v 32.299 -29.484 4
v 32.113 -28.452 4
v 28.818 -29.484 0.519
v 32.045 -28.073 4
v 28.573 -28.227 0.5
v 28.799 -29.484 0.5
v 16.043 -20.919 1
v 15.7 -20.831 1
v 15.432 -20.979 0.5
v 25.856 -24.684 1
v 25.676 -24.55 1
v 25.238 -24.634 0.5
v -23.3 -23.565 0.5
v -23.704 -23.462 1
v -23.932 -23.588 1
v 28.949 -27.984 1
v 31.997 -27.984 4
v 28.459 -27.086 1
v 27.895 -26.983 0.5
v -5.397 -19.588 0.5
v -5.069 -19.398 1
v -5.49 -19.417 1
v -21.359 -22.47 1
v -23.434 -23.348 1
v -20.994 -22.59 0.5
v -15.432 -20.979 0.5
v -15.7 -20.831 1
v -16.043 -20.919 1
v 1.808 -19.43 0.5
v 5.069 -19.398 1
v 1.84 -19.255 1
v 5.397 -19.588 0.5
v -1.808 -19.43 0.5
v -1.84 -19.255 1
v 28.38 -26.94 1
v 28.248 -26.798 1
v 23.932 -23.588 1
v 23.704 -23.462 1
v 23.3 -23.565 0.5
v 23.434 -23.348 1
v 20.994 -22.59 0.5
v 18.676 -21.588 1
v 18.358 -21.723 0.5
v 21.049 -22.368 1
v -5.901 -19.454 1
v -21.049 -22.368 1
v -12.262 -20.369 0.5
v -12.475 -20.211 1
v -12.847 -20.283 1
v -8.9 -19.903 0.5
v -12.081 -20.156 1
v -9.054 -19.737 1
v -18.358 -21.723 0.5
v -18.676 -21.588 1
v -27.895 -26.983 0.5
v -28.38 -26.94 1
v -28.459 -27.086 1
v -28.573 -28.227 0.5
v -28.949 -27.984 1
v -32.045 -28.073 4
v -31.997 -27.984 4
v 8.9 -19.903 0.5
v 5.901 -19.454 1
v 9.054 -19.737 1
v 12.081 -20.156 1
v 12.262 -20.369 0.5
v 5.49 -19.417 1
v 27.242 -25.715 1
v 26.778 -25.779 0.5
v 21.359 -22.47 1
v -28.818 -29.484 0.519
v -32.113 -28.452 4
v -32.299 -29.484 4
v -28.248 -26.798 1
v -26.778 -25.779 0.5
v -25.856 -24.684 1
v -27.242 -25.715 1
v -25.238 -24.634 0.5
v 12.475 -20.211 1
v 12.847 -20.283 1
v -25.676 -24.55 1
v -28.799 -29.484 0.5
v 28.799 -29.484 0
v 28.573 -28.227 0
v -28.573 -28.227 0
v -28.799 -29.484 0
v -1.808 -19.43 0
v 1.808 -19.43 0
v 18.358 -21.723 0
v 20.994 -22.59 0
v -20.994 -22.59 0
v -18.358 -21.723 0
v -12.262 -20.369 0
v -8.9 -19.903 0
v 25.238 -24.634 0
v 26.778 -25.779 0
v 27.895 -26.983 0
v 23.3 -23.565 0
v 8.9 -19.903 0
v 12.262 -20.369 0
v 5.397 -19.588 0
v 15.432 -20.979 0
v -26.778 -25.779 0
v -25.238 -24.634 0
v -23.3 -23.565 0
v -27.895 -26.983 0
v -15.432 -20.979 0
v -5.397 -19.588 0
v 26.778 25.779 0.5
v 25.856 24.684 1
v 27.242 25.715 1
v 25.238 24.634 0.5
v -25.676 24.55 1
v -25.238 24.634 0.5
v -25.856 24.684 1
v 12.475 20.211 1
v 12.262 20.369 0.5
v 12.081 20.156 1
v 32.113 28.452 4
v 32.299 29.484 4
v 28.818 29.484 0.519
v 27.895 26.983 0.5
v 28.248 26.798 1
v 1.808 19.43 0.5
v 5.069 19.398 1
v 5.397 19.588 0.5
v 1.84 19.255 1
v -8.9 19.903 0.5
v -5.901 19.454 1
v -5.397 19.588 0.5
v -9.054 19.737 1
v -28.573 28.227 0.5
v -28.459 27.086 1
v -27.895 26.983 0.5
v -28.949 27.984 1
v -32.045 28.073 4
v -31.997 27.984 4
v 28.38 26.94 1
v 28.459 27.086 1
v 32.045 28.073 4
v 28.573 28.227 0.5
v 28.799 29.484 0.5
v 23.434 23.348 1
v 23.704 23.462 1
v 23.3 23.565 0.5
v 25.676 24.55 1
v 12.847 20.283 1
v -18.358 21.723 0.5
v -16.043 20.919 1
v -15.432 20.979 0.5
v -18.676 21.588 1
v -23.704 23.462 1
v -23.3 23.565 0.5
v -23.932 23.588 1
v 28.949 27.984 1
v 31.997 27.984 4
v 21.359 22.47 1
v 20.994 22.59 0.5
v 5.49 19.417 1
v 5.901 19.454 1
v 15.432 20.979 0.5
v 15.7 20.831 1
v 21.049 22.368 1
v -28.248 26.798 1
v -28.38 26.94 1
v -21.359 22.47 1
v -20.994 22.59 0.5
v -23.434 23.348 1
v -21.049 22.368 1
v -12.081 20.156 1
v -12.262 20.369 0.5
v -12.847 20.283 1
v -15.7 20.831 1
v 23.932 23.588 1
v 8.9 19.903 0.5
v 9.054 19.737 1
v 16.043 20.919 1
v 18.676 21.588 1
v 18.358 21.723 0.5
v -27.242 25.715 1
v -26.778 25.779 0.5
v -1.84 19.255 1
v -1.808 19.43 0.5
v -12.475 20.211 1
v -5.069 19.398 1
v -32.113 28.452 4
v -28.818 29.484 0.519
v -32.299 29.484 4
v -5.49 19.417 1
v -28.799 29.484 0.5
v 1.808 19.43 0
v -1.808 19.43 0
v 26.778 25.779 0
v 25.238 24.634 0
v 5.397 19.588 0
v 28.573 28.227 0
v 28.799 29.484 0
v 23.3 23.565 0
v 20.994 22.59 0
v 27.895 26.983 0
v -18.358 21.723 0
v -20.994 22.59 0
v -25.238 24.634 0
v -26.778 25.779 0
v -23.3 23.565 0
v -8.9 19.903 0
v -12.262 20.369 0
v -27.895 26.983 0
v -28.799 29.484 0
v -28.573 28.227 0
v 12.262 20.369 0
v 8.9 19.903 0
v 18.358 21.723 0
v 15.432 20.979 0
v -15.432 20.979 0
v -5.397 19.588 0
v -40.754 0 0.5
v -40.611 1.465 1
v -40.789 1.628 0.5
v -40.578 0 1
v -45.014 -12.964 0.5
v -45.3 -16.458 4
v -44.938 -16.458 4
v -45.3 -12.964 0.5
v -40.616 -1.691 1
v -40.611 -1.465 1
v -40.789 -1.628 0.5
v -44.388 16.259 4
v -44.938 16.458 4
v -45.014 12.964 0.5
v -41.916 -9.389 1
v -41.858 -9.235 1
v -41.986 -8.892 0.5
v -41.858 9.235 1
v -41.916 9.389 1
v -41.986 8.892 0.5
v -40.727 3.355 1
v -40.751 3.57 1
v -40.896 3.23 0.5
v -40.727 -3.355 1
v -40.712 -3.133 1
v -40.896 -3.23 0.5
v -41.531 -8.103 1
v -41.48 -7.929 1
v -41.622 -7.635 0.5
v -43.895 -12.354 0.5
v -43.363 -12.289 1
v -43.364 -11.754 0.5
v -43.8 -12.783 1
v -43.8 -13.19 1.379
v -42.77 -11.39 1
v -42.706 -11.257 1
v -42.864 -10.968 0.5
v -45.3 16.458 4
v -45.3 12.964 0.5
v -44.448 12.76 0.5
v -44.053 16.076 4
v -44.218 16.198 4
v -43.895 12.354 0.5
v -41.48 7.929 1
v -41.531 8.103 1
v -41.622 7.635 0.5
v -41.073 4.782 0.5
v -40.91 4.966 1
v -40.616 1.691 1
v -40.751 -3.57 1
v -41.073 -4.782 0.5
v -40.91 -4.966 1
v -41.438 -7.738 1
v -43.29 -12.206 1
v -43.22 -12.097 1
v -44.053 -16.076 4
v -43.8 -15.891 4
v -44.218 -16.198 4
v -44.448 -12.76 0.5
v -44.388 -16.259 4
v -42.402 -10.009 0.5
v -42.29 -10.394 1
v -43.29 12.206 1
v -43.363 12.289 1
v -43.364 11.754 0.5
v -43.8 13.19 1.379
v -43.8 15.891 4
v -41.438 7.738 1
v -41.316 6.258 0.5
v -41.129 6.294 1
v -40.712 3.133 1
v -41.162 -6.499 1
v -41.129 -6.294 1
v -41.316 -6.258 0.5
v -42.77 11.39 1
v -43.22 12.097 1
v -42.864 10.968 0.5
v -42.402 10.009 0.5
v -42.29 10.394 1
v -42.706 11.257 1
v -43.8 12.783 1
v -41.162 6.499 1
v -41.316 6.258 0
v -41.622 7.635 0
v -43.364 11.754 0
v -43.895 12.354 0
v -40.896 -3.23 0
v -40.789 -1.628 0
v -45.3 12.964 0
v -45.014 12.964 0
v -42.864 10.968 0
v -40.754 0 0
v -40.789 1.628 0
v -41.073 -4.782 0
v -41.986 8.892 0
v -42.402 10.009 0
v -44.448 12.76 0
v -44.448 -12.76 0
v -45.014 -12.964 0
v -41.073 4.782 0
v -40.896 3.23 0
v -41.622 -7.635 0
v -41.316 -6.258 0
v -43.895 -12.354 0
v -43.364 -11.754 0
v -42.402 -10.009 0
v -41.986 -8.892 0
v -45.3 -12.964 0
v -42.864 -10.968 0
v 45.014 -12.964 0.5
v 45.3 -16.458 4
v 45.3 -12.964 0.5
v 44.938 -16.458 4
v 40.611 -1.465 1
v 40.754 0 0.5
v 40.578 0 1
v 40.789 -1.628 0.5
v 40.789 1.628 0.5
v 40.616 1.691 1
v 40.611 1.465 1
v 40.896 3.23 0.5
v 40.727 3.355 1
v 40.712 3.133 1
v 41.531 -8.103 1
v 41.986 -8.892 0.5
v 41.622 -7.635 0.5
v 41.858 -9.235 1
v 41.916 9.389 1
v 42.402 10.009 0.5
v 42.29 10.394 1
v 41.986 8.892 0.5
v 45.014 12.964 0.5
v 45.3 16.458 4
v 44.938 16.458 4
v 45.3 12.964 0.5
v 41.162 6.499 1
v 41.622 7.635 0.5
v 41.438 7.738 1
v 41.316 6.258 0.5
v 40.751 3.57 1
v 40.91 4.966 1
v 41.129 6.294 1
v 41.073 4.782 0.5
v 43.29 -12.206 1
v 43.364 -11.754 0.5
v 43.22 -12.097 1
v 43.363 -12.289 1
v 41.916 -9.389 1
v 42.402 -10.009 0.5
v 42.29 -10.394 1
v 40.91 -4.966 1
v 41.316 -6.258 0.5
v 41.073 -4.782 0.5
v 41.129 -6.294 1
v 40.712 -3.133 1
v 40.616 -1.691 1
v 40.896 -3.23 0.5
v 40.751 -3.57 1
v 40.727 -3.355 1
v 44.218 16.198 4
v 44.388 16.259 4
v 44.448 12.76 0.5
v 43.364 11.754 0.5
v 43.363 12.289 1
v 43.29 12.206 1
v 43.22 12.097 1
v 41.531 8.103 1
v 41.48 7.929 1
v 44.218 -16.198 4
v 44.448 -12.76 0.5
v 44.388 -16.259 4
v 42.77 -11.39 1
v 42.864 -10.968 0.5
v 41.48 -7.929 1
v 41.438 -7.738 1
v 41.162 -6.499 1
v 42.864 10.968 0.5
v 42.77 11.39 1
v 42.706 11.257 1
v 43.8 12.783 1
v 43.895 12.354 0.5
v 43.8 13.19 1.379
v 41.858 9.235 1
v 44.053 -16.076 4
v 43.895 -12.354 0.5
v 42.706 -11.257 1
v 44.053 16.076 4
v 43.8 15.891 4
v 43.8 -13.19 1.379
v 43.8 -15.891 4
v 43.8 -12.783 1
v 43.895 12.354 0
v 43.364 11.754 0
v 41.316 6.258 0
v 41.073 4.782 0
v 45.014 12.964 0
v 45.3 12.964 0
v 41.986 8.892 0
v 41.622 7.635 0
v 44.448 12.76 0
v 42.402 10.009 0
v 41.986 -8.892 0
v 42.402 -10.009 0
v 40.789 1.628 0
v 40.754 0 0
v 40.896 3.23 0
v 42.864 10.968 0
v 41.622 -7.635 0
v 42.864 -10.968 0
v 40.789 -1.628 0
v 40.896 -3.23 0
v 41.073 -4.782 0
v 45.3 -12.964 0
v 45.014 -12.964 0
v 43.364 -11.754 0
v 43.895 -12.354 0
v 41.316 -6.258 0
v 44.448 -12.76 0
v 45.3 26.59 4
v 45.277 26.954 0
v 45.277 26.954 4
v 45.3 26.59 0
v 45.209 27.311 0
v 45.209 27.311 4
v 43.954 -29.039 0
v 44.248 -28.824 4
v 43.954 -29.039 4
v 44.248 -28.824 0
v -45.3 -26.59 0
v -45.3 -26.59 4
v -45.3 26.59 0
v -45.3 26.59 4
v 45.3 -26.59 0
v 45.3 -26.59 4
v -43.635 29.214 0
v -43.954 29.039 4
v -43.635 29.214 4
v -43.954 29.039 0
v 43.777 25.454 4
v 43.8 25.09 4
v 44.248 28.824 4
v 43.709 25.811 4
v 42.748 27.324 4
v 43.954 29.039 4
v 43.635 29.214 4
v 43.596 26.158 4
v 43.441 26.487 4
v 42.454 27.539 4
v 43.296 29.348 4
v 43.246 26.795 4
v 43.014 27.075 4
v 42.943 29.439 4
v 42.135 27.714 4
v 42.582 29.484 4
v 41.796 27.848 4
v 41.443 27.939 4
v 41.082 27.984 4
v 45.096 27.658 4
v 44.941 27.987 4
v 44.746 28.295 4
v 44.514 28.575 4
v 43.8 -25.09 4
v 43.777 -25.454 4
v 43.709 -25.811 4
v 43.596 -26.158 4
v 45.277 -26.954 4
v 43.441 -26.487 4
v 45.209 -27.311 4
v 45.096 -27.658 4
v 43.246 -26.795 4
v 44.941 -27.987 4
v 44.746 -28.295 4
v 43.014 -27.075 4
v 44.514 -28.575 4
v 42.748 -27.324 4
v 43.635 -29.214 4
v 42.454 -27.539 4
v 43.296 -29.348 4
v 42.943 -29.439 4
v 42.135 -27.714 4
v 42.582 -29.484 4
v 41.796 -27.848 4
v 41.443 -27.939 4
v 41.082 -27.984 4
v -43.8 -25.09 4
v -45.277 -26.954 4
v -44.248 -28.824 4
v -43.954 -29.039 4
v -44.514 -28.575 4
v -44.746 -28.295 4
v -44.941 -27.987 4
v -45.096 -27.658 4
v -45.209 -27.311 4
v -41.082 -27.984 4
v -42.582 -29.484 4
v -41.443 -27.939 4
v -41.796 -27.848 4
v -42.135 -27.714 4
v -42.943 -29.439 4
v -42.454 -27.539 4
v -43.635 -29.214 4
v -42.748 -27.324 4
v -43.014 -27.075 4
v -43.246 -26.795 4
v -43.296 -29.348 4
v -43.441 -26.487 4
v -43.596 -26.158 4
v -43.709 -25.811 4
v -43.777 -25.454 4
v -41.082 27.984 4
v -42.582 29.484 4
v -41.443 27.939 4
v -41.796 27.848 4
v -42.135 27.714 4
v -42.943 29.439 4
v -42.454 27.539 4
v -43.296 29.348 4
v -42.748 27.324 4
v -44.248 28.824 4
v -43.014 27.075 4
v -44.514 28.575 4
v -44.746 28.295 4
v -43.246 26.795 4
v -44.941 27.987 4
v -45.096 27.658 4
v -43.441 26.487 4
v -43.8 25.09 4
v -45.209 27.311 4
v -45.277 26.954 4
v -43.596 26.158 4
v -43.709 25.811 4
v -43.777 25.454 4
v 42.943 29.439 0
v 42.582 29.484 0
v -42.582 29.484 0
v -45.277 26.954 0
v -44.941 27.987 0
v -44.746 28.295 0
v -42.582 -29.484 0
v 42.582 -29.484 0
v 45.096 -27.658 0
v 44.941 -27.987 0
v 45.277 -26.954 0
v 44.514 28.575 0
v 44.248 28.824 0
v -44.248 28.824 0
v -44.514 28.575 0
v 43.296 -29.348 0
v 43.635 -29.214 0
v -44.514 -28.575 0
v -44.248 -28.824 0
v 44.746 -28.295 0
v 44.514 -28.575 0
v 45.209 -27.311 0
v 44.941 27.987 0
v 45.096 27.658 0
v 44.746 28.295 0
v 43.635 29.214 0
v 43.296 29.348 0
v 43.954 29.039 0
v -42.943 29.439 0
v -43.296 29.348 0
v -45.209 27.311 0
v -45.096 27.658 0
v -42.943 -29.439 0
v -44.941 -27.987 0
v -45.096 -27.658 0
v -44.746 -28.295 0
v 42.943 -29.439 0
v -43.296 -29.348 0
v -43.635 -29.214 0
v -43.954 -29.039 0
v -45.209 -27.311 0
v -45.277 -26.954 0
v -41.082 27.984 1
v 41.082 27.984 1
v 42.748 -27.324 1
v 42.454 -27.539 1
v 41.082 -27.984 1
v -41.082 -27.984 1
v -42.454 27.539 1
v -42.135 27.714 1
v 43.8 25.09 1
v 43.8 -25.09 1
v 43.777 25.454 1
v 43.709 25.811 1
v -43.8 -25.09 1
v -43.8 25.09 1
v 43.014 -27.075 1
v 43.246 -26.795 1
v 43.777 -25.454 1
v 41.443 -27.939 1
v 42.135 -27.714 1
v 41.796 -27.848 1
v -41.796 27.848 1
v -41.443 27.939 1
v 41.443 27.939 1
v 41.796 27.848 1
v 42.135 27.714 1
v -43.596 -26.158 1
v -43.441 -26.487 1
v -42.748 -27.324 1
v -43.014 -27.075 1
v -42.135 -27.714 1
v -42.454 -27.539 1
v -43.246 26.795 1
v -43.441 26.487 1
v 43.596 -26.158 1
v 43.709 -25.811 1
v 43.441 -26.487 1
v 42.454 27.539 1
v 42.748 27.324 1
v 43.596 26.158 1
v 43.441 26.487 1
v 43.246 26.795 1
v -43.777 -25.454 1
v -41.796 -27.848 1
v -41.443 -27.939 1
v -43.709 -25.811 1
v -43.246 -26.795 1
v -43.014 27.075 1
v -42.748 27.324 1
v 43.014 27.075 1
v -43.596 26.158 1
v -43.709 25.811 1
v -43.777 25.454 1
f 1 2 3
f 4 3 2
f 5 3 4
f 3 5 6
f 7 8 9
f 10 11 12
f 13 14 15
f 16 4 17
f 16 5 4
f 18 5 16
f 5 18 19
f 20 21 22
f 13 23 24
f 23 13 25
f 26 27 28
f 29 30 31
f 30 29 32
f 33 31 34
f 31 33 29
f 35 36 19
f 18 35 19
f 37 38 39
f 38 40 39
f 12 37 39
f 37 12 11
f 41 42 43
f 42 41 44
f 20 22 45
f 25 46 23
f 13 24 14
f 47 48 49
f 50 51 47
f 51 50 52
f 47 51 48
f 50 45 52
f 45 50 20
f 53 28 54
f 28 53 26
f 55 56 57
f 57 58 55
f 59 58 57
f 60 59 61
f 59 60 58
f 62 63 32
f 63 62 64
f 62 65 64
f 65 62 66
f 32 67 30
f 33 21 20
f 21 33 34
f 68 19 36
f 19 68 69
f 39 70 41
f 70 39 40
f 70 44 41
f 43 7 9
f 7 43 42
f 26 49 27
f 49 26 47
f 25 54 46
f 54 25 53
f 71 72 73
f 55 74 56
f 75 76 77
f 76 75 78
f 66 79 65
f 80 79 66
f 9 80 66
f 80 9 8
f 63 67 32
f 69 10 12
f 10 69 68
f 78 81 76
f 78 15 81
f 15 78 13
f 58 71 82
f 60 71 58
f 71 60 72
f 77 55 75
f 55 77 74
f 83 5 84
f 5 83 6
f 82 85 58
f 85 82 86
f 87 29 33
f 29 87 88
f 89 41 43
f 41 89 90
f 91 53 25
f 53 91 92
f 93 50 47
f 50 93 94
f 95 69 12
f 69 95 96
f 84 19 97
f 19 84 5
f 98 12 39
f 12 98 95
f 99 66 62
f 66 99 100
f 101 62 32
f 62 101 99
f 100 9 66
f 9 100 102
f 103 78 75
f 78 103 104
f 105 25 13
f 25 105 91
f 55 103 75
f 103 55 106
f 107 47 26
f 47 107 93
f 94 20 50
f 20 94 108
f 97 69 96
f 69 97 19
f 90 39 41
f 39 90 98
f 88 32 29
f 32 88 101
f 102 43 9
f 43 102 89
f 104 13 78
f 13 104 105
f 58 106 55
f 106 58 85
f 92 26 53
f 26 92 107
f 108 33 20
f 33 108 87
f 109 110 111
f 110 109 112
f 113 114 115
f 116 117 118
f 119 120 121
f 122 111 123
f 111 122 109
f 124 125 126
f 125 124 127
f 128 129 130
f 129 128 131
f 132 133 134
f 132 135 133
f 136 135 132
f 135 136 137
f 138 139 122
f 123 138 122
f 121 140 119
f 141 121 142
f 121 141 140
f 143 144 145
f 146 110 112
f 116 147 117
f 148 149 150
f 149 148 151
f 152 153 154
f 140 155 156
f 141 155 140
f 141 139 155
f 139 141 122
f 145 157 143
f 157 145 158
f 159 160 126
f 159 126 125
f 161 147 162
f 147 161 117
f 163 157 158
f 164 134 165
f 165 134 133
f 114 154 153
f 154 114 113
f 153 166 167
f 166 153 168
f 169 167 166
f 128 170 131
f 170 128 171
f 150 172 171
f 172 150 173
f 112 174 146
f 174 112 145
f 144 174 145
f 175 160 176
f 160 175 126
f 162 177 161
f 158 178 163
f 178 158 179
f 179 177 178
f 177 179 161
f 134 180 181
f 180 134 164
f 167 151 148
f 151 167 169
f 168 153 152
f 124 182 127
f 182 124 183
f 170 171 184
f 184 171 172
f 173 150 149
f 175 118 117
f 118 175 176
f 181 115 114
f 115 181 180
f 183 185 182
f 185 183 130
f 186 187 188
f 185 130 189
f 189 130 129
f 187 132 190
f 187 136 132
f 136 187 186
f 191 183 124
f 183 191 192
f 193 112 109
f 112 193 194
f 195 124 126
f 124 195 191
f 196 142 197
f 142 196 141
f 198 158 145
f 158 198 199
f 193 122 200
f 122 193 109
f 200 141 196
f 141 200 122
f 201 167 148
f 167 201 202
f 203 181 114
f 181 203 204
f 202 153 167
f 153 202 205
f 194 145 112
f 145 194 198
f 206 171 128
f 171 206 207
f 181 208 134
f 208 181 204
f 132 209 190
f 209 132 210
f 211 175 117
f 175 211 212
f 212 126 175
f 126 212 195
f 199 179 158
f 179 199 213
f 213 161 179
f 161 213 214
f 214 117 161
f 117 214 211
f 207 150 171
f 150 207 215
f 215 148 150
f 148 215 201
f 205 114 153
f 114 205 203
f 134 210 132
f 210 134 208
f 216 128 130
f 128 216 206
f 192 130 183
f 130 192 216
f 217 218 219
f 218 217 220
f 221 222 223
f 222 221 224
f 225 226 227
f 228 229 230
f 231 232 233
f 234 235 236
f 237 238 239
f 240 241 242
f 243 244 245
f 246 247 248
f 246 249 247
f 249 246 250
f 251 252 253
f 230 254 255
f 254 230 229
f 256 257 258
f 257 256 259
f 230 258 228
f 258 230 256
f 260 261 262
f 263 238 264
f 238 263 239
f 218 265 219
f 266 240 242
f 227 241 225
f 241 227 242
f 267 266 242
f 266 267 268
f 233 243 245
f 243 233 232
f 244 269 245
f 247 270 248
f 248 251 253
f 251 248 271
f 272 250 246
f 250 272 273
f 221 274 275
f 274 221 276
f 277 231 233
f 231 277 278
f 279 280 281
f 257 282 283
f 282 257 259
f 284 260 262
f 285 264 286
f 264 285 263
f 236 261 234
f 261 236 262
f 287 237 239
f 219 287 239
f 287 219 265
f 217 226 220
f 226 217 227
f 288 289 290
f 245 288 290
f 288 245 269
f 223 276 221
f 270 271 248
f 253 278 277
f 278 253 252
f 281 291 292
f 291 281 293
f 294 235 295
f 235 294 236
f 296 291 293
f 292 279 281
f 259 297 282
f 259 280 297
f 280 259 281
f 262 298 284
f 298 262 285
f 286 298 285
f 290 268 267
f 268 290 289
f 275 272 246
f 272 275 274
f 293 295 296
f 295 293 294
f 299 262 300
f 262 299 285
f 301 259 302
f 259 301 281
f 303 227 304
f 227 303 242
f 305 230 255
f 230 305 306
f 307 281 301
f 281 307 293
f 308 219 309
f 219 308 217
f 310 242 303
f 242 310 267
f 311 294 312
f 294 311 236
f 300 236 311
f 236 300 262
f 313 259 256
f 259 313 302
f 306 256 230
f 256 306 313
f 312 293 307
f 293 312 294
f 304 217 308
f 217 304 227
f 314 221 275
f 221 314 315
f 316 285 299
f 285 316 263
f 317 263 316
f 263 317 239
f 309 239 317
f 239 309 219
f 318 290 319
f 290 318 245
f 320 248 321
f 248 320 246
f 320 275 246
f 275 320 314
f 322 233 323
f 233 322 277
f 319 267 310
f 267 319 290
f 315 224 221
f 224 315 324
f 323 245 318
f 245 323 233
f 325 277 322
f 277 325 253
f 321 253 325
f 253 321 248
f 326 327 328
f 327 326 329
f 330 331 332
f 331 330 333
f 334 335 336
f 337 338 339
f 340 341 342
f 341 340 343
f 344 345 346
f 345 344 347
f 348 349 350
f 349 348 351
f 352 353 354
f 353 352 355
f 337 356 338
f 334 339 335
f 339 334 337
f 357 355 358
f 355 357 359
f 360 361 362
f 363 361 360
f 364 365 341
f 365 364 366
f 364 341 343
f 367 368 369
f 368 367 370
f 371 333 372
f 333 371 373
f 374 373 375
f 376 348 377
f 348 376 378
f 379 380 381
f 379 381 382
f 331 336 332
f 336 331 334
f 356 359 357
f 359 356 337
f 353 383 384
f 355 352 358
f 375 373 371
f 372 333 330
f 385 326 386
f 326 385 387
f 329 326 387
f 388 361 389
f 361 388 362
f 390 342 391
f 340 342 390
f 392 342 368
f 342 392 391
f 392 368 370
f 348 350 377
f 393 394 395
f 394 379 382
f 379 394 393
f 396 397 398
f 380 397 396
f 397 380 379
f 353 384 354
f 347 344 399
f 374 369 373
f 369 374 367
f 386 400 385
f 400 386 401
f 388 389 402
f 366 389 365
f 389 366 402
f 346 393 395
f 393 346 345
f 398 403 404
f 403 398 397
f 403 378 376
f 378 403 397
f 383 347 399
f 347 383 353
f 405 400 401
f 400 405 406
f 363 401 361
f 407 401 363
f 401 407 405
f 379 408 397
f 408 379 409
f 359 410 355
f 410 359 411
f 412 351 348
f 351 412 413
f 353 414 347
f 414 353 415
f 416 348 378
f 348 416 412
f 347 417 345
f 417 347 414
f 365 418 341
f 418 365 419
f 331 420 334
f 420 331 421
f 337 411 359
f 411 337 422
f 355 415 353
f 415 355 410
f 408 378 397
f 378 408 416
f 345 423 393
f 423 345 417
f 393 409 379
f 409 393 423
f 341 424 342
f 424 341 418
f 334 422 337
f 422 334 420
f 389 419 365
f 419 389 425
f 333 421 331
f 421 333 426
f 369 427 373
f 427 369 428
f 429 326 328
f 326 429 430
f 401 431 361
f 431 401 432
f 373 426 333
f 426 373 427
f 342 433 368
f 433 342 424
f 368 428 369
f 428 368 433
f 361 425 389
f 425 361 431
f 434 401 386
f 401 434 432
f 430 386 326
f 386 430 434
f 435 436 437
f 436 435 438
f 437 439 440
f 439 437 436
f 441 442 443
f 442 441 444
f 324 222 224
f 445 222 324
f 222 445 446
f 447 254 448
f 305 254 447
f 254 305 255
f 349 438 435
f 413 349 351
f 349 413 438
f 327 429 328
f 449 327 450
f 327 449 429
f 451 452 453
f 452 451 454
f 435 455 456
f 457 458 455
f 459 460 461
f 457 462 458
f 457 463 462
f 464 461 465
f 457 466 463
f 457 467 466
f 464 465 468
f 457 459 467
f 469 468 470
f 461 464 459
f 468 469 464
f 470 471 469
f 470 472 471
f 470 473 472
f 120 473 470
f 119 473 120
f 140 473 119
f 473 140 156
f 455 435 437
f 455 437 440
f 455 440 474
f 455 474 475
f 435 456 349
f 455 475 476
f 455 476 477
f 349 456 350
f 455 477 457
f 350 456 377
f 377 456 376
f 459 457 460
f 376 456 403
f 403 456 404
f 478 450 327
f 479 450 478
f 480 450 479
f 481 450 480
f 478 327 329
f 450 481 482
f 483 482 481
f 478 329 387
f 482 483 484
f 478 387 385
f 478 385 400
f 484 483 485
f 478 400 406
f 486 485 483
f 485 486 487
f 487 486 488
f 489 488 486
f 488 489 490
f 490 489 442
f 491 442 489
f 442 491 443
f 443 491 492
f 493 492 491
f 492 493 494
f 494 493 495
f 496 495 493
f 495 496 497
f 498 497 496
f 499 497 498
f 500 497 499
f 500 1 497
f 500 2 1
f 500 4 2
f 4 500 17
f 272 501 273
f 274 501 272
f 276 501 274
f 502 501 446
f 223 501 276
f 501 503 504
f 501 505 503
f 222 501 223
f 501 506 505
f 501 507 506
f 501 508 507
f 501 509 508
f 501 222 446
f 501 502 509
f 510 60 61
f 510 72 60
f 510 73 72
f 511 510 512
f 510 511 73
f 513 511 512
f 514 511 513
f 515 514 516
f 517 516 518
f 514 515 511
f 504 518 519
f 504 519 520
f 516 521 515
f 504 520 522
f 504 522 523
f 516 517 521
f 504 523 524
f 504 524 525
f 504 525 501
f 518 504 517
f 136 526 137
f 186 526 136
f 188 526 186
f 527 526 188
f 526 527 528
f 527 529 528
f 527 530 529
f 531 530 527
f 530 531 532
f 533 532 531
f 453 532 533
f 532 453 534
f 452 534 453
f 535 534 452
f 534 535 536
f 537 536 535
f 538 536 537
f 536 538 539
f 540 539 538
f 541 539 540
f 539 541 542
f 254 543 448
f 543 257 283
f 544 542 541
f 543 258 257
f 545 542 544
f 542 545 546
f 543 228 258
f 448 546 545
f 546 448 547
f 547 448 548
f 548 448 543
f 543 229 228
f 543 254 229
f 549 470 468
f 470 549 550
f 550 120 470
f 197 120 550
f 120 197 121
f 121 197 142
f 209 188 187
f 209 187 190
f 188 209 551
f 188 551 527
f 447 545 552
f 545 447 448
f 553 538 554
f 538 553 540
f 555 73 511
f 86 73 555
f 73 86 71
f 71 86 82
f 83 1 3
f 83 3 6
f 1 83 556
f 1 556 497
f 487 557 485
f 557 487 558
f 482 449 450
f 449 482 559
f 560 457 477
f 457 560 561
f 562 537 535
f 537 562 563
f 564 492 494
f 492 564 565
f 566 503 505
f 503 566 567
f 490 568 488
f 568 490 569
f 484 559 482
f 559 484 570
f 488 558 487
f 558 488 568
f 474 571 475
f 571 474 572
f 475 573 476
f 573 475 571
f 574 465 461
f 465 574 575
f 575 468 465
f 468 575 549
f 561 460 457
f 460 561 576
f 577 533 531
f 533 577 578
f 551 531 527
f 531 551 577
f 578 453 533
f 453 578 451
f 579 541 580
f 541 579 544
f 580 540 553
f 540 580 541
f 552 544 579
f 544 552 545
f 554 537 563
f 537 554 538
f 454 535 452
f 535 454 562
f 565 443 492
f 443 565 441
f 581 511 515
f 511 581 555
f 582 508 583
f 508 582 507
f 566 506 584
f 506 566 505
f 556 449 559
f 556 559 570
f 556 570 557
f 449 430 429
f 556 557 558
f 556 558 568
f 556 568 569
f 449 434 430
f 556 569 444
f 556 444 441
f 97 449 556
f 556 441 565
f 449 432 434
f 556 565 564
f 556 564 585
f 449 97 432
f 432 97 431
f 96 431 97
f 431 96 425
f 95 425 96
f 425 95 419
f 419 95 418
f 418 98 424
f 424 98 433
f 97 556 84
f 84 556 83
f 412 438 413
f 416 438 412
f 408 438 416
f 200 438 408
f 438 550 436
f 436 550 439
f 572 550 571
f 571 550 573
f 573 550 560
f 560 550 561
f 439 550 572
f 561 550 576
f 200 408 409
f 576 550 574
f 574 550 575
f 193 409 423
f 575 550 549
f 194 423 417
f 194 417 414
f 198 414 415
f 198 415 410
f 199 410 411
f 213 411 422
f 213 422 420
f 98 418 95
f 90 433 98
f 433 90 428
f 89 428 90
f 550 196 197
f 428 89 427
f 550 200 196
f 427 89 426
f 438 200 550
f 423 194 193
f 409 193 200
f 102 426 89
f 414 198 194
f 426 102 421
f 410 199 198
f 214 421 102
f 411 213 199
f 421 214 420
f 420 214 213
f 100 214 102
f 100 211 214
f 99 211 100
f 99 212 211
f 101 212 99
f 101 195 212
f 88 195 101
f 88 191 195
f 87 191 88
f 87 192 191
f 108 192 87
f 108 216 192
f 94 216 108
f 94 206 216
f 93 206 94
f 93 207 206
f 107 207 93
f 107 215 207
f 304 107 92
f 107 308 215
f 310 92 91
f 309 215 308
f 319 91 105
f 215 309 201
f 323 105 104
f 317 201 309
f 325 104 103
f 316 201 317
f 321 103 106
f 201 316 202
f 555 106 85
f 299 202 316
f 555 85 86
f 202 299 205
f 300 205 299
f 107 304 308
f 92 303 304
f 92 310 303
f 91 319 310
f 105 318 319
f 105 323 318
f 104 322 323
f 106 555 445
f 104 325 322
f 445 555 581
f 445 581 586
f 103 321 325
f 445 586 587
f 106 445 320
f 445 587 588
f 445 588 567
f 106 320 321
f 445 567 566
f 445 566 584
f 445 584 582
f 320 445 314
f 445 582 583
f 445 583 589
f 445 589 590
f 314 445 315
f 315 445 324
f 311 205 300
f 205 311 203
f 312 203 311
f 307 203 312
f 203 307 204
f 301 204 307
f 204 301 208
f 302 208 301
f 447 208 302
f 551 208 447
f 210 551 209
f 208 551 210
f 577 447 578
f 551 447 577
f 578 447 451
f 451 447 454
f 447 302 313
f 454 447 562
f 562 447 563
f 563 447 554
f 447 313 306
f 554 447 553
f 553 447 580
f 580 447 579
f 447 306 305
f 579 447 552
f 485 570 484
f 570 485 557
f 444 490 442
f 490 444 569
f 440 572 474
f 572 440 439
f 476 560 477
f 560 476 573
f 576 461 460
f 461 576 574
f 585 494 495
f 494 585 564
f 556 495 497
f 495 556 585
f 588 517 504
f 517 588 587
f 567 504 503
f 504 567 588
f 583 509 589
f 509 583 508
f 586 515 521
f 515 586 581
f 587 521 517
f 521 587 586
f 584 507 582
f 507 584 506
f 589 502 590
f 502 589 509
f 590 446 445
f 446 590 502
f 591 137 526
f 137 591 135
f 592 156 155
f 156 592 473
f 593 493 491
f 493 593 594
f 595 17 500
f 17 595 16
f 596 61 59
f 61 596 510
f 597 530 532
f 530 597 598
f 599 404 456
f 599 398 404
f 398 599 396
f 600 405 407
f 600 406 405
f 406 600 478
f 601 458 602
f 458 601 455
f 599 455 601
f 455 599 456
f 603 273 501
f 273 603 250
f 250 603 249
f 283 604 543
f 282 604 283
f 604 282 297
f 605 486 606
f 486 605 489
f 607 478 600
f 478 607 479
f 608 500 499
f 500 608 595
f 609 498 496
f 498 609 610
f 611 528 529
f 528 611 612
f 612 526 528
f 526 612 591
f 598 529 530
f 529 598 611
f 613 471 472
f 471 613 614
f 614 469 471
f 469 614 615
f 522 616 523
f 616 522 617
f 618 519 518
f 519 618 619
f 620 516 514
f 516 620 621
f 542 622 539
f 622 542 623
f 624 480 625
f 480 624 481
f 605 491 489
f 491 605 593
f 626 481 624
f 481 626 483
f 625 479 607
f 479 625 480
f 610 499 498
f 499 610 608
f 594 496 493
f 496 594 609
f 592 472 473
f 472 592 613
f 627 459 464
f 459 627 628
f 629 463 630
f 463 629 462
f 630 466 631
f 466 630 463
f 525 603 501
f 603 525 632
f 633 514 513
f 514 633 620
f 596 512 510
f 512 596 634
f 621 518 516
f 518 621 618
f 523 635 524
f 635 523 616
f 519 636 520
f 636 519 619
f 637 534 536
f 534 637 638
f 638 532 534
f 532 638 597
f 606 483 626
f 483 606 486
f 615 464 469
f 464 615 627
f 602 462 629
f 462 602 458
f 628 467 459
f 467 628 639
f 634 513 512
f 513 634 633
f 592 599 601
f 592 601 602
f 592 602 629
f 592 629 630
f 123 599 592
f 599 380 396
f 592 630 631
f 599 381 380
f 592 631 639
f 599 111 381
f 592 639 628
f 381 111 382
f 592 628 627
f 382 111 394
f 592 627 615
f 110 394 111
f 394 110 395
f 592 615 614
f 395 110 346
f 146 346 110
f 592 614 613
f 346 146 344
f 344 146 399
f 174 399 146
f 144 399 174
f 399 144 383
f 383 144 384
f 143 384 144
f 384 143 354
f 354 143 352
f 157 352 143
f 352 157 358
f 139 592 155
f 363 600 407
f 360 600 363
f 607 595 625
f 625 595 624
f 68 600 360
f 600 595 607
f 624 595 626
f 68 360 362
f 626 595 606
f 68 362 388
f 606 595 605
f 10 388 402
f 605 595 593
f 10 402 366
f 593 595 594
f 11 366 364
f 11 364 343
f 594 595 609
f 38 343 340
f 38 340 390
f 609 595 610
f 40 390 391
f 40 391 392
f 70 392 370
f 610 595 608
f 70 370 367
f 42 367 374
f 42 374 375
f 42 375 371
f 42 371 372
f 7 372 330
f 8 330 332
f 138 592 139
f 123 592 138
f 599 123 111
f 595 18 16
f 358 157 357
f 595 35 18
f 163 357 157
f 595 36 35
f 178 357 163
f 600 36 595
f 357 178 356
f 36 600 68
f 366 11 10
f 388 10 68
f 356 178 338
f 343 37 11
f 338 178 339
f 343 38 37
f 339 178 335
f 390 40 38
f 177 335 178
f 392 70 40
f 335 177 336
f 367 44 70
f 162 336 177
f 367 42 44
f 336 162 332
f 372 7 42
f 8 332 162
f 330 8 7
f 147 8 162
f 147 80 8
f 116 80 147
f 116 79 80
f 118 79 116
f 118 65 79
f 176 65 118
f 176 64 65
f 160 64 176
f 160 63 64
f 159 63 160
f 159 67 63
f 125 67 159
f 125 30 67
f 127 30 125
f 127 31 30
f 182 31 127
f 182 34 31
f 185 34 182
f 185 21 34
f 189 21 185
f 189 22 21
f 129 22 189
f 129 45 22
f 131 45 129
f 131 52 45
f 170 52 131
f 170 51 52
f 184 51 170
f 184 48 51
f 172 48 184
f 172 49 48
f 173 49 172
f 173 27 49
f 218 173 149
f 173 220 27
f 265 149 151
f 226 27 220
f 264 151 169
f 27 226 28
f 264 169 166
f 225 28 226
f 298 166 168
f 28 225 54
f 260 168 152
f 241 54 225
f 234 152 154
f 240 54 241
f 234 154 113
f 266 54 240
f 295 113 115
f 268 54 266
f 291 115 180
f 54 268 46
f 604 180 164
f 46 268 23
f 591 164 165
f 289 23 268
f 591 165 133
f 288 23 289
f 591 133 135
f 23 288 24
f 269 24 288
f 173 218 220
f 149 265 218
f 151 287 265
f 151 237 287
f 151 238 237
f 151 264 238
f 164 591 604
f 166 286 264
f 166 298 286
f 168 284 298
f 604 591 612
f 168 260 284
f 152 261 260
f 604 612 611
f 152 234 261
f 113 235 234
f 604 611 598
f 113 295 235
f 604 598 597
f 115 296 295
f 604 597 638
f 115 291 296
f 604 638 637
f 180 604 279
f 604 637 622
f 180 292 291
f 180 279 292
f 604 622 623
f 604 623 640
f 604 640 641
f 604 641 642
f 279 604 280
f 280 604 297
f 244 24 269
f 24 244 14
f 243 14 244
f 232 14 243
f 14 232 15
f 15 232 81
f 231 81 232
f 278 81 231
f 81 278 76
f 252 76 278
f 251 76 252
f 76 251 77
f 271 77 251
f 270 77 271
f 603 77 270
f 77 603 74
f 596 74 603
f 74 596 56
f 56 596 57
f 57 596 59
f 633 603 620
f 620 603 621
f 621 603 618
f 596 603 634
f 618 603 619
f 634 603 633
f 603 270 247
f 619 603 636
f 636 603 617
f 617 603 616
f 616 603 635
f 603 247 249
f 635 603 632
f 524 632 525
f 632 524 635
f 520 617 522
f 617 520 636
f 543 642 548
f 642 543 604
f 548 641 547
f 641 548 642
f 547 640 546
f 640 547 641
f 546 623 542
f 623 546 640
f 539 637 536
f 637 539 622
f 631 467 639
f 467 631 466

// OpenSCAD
card_w = 85.6 + 2;
card_d = 53.98 + 2;
card_r = 2.9;
border_w = 1.5;
bottom_h = 1;
edge_w = 15;
edge_bevel = 5;
border_h = 3;
cutout_scale = 0.35;

h = border_h + bottom_h;

$fn = 50;

difference() {
    hull() {
        for (x = [-1, 1]) {
            for (y = [-1, 1]) {
                translate([y * (card_w / 2 + border_w - card_r), x * (card_d / 2 + border_w - card_r), 0])
                cylinder(h=h, r=card_r);
            }
        }
    }
    
    hull() {
        for (x = [-1, 1]) {
            for (y = [-1, 1]) {
                translate([y * (card_w / 2 - card_r), x * (card_d / 2 - card_r), bottom_h])
                cylinder(h=h, r=card_r);
            }
        }
    }
    
    for (y = [-1, 1]) {
        cutout_r = card_w / 2 - edge_w;
        translate([0, y * (card_d / 2 + border_w), 0])
        scale([1, cutout_scale, 1]) {
            translate([0, 0, bottom_h/2])
            cylinder(h=h+1, r1 = cutout_r, r2 = cutout_r + edge_bevel);
            translate([0, 0, -1])
            cylinder(h=h+1, r = cutout_r);
        }
    }
    
    for (x = [-1, 1]) {
        cutout_r = card_d / 2 - edge_w;
        translate([x * (card_w / 2 + border_w), 0, 0])
        scale([cutout_scale, 1, 1]) {
            translate([0, 0, bottom_h/2])
            cylinder(h=h+1, r1 = cutout_r, r2 = cutout_r + edge_bevel);
            translate([0, 0, -1])
            cylinder(h=h+1, r = cutout_r);
        }
    }
}
